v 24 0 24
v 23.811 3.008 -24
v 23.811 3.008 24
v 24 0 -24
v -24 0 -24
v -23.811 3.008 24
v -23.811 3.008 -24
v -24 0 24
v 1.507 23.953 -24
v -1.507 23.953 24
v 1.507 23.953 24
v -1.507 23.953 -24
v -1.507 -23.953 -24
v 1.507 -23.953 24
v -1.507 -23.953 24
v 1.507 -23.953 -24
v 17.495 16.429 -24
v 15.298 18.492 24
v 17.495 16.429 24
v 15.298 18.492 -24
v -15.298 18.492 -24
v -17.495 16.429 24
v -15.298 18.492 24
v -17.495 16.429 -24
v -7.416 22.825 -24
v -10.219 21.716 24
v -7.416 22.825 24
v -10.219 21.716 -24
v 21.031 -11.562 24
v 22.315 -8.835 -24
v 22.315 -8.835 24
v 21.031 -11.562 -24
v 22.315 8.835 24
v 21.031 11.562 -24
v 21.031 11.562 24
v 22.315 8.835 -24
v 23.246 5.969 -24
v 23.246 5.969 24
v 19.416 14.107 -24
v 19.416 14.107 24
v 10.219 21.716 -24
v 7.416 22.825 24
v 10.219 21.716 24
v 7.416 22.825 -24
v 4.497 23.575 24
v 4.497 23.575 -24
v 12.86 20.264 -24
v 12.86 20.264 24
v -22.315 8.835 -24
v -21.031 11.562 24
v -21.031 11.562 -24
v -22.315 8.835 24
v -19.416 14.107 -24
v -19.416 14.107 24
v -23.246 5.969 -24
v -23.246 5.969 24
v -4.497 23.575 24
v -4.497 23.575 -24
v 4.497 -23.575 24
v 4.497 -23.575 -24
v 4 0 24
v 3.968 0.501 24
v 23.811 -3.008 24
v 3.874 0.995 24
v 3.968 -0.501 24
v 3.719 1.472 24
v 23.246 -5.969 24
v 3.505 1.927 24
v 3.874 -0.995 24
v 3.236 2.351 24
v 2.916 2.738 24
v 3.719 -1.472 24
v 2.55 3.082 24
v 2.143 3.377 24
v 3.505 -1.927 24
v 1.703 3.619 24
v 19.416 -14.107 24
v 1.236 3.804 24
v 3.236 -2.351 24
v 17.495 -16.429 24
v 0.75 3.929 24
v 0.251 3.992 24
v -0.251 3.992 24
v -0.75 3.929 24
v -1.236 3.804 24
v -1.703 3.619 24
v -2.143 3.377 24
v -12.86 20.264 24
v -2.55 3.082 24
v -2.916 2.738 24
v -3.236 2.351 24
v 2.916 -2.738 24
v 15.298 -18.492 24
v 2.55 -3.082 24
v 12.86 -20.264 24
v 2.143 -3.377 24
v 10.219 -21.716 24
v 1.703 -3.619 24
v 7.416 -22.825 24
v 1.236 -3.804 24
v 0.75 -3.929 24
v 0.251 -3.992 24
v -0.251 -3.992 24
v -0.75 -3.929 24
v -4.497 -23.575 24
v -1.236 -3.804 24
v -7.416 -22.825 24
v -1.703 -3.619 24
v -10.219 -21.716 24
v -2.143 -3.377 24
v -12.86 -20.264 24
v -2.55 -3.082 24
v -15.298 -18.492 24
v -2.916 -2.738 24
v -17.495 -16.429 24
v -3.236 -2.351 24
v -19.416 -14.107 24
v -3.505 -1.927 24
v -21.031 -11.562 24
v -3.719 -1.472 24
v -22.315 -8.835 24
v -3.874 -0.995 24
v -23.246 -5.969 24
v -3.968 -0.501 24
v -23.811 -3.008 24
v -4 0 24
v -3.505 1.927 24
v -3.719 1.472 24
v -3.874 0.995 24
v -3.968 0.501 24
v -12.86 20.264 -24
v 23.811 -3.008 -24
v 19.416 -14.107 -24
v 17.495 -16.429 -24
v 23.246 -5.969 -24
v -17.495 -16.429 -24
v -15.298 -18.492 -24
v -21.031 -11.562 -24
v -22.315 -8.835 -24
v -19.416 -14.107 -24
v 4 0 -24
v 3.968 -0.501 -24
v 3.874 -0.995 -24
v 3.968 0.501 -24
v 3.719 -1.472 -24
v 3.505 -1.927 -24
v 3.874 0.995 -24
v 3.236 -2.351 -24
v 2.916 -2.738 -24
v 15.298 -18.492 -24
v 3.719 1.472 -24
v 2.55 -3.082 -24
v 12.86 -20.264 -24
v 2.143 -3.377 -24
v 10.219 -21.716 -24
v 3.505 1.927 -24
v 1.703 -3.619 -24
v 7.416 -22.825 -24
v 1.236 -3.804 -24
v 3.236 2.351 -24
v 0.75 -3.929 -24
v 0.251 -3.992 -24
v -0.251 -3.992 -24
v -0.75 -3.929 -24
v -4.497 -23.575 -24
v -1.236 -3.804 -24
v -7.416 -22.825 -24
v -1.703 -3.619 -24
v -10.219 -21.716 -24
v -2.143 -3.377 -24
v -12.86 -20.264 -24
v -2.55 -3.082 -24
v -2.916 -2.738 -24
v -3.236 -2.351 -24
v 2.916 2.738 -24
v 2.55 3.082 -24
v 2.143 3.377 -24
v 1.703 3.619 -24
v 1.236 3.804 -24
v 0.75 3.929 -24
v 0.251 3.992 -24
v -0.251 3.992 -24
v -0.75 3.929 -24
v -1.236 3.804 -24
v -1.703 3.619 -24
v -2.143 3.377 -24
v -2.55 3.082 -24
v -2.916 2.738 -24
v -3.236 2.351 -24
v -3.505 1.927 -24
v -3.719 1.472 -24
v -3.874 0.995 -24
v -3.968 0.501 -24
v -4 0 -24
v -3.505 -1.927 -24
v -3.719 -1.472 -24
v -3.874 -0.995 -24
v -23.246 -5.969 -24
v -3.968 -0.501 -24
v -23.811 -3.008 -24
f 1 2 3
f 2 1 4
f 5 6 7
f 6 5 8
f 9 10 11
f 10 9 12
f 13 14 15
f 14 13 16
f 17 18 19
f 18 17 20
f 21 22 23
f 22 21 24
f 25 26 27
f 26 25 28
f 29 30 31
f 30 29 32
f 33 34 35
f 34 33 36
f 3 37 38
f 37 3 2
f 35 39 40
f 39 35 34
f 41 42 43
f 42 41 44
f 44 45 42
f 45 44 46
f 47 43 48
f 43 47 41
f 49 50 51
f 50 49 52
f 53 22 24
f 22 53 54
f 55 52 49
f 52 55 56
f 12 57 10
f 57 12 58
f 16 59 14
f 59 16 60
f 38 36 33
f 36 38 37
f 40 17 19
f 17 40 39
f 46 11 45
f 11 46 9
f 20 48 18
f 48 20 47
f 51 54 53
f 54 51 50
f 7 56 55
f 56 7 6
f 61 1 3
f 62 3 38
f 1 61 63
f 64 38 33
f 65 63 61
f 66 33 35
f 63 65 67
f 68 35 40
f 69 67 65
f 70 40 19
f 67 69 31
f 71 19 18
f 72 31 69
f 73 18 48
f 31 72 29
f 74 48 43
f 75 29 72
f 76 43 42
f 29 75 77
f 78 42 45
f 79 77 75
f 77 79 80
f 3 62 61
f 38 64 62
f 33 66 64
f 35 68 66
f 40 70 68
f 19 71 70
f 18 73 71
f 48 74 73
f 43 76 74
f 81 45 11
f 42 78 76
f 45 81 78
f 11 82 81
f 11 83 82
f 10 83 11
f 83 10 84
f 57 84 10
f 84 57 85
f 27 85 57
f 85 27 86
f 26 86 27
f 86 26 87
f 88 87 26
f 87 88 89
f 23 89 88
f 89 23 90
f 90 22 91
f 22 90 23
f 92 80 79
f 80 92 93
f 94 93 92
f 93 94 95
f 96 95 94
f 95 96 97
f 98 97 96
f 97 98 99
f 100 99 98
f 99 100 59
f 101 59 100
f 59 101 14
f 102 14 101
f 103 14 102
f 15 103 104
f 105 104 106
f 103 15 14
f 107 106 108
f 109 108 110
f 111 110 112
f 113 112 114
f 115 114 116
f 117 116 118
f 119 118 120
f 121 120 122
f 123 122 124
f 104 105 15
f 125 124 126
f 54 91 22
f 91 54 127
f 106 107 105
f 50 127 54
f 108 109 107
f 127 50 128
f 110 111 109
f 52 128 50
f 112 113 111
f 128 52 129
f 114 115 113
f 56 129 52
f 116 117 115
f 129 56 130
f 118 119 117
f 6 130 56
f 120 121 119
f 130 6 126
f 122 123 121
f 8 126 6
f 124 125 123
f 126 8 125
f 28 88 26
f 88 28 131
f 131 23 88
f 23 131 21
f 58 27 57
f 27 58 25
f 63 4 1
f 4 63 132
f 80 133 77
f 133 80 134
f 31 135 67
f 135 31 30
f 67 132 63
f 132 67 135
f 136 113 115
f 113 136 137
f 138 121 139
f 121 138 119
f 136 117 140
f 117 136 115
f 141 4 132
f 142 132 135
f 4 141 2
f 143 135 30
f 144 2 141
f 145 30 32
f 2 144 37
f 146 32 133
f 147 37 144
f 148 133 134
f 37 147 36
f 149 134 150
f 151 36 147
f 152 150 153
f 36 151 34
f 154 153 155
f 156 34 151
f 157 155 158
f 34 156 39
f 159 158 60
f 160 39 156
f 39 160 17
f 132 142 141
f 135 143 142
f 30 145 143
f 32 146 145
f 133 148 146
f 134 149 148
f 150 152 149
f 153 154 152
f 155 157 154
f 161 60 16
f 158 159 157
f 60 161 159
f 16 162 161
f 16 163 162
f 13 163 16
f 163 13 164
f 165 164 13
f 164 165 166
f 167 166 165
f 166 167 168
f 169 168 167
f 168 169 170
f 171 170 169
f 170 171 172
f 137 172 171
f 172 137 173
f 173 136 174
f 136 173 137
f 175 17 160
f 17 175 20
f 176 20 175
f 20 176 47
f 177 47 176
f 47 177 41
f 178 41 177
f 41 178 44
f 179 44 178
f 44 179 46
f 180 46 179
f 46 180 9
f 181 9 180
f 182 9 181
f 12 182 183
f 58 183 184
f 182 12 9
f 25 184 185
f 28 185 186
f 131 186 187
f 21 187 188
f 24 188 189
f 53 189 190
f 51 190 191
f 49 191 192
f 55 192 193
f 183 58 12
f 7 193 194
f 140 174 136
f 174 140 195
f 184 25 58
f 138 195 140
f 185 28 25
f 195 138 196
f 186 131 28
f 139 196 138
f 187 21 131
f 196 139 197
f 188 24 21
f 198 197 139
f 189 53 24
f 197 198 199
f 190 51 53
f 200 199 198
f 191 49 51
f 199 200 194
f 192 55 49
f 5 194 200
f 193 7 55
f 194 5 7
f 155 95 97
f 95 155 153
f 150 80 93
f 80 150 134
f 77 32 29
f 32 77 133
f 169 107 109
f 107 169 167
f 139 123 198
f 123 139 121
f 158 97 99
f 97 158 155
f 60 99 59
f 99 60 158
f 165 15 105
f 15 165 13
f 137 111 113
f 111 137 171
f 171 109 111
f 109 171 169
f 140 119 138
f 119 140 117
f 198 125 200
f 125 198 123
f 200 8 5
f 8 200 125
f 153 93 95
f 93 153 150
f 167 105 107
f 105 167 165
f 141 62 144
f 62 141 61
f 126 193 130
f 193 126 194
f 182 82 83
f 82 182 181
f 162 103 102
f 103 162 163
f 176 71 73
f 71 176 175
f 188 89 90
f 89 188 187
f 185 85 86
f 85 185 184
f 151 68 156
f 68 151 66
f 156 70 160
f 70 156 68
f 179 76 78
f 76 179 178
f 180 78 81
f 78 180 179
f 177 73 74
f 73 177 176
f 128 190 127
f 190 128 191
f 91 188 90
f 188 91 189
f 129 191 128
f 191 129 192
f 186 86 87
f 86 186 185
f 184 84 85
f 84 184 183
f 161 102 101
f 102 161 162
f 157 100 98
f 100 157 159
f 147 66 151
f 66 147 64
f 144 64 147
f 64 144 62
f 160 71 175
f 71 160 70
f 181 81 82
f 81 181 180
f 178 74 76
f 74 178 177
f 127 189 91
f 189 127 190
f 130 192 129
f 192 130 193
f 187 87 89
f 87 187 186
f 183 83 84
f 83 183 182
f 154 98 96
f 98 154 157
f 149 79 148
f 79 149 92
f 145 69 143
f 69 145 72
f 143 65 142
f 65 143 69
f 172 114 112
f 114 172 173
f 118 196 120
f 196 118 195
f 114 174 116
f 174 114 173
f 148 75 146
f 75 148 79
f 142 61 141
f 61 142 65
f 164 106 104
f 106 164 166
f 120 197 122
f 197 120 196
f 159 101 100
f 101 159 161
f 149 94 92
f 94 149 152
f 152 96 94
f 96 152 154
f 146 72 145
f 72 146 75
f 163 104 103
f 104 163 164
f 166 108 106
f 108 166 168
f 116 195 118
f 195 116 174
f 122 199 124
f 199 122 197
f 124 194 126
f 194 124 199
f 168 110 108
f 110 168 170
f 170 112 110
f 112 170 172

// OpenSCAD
$fn = 50;


difference() {
	union() {
		translate(v = [0, 0, -24.0000000000]) {
			cylinder(h = 48, r = 24.0000000000);
		}
	}
	union() {
		translate(v = [0, 0, -100.0000000000]) {
			cylinder(h = 200, r = 4.0000000000);
		}
	}
}
